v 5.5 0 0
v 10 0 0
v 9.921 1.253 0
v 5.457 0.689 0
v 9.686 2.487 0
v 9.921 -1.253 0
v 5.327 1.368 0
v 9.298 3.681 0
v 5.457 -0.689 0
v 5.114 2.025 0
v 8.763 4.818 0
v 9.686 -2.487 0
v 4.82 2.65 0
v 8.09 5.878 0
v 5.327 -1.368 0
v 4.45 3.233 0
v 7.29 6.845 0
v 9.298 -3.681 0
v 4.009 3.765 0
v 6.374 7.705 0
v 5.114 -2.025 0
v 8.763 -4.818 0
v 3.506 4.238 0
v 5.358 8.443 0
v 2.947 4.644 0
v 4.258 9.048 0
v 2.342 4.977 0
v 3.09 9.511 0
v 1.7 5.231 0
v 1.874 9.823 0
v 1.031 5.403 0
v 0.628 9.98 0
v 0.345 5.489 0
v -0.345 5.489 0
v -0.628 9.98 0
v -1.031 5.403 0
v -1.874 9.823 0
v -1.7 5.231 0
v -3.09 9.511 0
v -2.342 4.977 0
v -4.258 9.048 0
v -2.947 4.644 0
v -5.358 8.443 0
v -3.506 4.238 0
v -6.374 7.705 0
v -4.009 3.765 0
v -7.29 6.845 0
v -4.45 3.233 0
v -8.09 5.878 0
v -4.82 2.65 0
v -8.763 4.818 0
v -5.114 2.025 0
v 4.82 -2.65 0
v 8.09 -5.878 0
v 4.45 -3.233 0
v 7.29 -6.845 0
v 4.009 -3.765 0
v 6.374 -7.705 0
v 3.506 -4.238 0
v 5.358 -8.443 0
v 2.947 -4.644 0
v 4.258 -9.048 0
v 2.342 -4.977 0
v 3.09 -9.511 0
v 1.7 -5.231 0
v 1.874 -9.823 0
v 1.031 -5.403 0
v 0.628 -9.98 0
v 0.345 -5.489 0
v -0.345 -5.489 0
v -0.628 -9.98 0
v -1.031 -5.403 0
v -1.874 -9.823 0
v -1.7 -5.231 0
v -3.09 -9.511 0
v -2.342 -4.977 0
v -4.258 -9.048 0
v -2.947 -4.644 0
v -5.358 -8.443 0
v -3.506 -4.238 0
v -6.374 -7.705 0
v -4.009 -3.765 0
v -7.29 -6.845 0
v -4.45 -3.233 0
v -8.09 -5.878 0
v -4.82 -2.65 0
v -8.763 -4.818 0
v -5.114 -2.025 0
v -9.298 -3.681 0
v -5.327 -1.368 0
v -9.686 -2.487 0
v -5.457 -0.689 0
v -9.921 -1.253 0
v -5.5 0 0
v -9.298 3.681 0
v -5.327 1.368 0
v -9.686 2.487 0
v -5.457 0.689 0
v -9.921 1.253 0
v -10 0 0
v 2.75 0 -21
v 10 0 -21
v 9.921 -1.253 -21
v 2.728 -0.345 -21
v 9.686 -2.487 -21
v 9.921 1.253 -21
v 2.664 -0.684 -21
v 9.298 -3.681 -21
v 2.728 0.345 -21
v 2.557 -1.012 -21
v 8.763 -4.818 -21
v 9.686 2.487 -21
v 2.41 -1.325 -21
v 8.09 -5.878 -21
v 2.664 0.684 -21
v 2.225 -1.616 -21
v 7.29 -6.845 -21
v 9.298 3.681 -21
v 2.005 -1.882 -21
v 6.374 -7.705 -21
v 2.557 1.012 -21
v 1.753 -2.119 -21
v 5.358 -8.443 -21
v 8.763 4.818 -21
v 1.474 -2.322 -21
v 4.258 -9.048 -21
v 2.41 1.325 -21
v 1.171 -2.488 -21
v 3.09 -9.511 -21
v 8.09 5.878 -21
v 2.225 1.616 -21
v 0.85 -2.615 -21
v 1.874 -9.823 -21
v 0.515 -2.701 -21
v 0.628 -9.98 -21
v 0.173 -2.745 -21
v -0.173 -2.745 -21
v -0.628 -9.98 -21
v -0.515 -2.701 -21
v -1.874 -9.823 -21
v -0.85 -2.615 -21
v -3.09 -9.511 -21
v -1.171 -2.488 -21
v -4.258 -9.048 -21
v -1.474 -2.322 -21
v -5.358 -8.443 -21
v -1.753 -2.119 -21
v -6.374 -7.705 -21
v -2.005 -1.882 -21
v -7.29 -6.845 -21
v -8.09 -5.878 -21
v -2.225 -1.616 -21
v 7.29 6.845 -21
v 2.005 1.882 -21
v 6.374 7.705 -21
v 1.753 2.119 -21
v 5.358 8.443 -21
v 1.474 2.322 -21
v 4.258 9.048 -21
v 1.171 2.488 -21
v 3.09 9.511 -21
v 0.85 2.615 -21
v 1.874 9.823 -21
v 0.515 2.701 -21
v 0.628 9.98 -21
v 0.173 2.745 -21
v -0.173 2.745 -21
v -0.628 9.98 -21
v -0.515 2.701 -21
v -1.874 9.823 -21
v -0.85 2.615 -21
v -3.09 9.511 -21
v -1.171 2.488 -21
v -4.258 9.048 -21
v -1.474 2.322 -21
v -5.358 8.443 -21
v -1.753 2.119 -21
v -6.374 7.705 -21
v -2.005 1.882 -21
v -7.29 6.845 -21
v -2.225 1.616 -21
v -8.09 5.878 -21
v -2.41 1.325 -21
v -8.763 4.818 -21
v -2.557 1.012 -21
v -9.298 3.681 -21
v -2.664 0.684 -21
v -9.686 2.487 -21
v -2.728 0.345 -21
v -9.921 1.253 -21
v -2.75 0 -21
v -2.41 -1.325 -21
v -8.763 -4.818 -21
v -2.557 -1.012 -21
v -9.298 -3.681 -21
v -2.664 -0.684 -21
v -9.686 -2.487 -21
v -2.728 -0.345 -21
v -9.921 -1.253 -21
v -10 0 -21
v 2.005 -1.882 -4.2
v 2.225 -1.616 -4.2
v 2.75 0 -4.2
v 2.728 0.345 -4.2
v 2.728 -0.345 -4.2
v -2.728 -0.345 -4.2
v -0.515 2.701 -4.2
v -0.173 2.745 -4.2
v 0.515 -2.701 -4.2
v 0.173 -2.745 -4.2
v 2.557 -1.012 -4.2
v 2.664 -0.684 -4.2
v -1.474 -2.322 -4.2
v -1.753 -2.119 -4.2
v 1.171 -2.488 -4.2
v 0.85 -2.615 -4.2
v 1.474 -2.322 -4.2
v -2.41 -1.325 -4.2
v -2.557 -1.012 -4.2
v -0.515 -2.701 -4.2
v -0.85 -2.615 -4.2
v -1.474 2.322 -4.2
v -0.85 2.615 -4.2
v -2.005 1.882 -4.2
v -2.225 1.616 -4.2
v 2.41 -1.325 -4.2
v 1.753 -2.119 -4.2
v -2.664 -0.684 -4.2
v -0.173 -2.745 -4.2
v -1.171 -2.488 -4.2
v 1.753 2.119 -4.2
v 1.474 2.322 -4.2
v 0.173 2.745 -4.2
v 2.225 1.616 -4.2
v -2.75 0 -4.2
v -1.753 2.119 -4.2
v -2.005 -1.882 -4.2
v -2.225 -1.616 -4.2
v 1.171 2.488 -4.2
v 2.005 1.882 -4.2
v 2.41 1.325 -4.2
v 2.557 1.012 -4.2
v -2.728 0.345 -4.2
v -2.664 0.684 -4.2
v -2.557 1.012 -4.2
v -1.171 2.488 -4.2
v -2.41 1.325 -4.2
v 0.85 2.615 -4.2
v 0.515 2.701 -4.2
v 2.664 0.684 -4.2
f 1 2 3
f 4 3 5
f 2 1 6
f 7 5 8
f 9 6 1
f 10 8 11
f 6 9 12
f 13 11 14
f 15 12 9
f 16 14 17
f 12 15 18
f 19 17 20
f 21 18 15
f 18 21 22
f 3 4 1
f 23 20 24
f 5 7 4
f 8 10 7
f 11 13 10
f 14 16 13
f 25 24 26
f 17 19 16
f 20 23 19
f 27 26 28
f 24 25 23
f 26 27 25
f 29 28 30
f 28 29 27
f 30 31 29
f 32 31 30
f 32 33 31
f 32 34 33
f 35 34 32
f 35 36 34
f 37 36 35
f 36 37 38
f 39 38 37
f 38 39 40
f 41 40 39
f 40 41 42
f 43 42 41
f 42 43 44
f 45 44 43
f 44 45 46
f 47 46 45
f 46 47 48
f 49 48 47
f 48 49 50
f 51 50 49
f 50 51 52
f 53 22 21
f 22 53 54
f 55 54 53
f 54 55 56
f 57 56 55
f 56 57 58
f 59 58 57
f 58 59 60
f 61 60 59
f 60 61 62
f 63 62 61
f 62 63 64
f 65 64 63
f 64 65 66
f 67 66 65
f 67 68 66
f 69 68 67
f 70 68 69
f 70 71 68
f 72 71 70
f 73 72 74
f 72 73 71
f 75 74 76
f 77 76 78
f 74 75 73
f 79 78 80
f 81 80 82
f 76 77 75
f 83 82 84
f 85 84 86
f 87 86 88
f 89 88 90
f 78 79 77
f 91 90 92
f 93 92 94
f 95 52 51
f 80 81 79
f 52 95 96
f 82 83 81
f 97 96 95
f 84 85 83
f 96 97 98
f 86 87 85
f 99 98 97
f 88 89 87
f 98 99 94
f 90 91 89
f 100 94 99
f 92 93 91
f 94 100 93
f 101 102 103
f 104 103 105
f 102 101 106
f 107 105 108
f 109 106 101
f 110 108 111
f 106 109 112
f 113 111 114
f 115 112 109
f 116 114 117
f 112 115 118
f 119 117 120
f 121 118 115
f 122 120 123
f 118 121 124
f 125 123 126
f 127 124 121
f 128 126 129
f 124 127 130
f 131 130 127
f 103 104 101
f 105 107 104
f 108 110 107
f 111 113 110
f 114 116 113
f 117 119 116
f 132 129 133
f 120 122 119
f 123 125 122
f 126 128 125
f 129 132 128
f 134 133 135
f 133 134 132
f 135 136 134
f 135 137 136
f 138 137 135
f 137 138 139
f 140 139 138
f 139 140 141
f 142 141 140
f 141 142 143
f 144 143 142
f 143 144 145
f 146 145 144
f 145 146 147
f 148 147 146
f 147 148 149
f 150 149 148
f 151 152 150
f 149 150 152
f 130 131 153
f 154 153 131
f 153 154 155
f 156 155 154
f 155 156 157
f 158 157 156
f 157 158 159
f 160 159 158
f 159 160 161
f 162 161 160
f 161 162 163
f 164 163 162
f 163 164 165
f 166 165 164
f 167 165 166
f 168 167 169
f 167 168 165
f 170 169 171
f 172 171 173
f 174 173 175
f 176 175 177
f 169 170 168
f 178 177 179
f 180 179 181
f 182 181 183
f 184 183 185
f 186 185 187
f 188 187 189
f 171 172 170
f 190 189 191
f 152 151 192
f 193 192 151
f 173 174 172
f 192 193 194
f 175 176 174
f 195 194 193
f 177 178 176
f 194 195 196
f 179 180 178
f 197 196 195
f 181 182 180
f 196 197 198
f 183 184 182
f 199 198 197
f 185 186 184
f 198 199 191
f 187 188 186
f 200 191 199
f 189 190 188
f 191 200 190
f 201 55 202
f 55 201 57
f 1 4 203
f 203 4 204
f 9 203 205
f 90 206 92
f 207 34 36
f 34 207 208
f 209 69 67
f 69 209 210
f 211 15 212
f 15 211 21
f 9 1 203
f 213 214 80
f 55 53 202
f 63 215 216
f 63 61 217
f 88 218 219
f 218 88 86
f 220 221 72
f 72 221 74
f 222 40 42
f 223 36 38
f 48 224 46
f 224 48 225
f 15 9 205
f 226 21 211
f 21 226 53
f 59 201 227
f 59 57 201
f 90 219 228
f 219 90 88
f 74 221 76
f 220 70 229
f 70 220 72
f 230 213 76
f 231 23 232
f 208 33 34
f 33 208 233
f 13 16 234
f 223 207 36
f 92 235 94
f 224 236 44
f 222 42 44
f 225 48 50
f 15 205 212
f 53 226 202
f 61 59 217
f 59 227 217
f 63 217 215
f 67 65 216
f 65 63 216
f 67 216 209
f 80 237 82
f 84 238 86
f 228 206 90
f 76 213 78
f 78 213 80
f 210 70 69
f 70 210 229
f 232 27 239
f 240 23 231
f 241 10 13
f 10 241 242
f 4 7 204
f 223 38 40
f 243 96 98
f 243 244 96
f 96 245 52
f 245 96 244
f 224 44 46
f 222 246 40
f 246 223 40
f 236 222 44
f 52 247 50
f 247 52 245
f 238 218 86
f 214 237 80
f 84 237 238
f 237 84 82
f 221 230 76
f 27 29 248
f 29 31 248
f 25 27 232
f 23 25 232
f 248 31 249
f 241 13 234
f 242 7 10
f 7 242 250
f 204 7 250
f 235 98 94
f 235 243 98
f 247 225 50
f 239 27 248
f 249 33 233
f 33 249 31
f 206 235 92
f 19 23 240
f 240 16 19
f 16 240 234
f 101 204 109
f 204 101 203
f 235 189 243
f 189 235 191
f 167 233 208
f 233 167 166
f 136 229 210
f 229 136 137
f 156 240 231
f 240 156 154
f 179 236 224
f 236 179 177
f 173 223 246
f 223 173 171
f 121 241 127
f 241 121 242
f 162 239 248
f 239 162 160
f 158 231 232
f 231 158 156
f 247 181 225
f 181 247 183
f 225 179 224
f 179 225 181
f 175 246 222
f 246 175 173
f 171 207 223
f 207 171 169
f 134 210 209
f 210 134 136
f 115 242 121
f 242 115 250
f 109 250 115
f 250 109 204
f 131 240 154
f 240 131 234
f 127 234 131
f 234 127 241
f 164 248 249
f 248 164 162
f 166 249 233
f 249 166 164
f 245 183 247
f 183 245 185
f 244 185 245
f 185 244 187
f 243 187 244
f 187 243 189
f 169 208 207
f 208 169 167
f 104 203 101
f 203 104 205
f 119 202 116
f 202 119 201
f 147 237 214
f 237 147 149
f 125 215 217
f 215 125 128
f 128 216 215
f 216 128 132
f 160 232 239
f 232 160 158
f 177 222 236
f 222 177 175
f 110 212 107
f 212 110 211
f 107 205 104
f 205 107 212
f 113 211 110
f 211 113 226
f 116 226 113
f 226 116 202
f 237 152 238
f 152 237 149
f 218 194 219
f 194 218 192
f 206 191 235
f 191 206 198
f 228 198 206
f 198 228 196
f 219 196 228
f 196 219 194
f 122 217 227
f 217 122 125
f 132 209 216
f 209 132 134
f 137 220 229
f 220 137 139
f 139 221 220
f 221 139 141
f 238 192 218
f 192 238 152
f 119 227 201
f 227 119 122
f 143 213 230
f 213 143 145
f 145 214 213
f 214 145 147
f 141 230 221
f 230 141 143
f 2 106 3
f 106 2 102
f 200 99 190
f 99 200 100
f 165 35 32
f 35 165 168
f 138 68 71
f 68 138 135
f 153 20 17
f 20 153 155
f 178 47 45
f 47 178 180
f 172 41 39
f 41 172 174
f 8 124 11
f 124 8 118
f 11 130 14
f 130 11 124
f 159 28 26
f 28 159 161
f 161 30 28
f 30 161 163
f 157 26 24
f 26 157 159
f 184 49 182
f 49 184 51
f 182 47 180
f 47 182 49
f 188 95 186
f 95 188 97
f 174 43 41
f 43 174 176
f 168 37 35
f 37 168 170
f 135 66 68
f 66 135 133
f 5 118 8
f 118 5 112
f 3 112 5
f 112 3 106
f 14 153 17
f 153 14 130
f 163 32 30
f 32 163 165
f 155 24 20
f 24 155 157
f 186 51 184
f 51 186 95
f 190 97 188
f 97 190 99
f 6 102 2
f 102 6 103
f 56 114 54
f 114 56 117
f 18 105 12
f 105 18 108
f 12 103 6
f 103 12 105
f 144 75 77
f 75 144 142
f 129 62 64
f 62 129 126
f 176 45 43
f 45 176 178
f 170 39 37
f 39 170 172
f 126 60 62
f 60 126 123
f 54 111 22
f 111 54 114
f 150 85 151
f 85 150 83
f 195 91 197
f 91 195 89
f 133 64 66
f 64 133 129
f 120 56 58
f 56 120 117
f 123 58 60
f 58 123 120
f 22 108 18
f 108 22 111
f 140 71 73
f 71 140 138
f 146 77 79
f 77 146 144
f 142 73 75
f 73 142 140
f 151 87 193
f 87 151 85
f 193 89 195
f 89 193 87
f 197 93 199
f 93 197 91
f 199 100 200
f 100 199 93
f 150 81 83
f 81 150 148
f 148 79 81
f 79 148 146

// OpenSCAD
$fn = 50;


difference() {
	union() {
		translate(v = [0, 0, -21.0000000000]) {
			cylinder(h = 21, r = 10.0000000000);
		}
		cylinder(h = 0, r = 20.0000000000);
	}
	union() {
		translate(v = [0, 0, 0]) {
			rotate(a = [0, 0, 0]) {
				difference() {
					union() {
						#translate(v = [0, 0, -21.0000000000]) {
							cylinder(h = 21, r = 2.2500000000);
						}
						#translate(v = [0, 0, -4.2000000000]) {
							cylinder(h = 4.2000000000, r1 = 2.7500000000, r2 = 5.5000000000);
						}
						#translate(v = [0, 0, -21.0000000000]) {
							cylinder(h = 21, r = 2.7500000000);
						}
						#translate(v = [0, 0, -21.0000000000]) {
							cylinder(h = 21, r = 2.2500000000);
						}
					}
					union();
				}
			}
		}
	}
}
